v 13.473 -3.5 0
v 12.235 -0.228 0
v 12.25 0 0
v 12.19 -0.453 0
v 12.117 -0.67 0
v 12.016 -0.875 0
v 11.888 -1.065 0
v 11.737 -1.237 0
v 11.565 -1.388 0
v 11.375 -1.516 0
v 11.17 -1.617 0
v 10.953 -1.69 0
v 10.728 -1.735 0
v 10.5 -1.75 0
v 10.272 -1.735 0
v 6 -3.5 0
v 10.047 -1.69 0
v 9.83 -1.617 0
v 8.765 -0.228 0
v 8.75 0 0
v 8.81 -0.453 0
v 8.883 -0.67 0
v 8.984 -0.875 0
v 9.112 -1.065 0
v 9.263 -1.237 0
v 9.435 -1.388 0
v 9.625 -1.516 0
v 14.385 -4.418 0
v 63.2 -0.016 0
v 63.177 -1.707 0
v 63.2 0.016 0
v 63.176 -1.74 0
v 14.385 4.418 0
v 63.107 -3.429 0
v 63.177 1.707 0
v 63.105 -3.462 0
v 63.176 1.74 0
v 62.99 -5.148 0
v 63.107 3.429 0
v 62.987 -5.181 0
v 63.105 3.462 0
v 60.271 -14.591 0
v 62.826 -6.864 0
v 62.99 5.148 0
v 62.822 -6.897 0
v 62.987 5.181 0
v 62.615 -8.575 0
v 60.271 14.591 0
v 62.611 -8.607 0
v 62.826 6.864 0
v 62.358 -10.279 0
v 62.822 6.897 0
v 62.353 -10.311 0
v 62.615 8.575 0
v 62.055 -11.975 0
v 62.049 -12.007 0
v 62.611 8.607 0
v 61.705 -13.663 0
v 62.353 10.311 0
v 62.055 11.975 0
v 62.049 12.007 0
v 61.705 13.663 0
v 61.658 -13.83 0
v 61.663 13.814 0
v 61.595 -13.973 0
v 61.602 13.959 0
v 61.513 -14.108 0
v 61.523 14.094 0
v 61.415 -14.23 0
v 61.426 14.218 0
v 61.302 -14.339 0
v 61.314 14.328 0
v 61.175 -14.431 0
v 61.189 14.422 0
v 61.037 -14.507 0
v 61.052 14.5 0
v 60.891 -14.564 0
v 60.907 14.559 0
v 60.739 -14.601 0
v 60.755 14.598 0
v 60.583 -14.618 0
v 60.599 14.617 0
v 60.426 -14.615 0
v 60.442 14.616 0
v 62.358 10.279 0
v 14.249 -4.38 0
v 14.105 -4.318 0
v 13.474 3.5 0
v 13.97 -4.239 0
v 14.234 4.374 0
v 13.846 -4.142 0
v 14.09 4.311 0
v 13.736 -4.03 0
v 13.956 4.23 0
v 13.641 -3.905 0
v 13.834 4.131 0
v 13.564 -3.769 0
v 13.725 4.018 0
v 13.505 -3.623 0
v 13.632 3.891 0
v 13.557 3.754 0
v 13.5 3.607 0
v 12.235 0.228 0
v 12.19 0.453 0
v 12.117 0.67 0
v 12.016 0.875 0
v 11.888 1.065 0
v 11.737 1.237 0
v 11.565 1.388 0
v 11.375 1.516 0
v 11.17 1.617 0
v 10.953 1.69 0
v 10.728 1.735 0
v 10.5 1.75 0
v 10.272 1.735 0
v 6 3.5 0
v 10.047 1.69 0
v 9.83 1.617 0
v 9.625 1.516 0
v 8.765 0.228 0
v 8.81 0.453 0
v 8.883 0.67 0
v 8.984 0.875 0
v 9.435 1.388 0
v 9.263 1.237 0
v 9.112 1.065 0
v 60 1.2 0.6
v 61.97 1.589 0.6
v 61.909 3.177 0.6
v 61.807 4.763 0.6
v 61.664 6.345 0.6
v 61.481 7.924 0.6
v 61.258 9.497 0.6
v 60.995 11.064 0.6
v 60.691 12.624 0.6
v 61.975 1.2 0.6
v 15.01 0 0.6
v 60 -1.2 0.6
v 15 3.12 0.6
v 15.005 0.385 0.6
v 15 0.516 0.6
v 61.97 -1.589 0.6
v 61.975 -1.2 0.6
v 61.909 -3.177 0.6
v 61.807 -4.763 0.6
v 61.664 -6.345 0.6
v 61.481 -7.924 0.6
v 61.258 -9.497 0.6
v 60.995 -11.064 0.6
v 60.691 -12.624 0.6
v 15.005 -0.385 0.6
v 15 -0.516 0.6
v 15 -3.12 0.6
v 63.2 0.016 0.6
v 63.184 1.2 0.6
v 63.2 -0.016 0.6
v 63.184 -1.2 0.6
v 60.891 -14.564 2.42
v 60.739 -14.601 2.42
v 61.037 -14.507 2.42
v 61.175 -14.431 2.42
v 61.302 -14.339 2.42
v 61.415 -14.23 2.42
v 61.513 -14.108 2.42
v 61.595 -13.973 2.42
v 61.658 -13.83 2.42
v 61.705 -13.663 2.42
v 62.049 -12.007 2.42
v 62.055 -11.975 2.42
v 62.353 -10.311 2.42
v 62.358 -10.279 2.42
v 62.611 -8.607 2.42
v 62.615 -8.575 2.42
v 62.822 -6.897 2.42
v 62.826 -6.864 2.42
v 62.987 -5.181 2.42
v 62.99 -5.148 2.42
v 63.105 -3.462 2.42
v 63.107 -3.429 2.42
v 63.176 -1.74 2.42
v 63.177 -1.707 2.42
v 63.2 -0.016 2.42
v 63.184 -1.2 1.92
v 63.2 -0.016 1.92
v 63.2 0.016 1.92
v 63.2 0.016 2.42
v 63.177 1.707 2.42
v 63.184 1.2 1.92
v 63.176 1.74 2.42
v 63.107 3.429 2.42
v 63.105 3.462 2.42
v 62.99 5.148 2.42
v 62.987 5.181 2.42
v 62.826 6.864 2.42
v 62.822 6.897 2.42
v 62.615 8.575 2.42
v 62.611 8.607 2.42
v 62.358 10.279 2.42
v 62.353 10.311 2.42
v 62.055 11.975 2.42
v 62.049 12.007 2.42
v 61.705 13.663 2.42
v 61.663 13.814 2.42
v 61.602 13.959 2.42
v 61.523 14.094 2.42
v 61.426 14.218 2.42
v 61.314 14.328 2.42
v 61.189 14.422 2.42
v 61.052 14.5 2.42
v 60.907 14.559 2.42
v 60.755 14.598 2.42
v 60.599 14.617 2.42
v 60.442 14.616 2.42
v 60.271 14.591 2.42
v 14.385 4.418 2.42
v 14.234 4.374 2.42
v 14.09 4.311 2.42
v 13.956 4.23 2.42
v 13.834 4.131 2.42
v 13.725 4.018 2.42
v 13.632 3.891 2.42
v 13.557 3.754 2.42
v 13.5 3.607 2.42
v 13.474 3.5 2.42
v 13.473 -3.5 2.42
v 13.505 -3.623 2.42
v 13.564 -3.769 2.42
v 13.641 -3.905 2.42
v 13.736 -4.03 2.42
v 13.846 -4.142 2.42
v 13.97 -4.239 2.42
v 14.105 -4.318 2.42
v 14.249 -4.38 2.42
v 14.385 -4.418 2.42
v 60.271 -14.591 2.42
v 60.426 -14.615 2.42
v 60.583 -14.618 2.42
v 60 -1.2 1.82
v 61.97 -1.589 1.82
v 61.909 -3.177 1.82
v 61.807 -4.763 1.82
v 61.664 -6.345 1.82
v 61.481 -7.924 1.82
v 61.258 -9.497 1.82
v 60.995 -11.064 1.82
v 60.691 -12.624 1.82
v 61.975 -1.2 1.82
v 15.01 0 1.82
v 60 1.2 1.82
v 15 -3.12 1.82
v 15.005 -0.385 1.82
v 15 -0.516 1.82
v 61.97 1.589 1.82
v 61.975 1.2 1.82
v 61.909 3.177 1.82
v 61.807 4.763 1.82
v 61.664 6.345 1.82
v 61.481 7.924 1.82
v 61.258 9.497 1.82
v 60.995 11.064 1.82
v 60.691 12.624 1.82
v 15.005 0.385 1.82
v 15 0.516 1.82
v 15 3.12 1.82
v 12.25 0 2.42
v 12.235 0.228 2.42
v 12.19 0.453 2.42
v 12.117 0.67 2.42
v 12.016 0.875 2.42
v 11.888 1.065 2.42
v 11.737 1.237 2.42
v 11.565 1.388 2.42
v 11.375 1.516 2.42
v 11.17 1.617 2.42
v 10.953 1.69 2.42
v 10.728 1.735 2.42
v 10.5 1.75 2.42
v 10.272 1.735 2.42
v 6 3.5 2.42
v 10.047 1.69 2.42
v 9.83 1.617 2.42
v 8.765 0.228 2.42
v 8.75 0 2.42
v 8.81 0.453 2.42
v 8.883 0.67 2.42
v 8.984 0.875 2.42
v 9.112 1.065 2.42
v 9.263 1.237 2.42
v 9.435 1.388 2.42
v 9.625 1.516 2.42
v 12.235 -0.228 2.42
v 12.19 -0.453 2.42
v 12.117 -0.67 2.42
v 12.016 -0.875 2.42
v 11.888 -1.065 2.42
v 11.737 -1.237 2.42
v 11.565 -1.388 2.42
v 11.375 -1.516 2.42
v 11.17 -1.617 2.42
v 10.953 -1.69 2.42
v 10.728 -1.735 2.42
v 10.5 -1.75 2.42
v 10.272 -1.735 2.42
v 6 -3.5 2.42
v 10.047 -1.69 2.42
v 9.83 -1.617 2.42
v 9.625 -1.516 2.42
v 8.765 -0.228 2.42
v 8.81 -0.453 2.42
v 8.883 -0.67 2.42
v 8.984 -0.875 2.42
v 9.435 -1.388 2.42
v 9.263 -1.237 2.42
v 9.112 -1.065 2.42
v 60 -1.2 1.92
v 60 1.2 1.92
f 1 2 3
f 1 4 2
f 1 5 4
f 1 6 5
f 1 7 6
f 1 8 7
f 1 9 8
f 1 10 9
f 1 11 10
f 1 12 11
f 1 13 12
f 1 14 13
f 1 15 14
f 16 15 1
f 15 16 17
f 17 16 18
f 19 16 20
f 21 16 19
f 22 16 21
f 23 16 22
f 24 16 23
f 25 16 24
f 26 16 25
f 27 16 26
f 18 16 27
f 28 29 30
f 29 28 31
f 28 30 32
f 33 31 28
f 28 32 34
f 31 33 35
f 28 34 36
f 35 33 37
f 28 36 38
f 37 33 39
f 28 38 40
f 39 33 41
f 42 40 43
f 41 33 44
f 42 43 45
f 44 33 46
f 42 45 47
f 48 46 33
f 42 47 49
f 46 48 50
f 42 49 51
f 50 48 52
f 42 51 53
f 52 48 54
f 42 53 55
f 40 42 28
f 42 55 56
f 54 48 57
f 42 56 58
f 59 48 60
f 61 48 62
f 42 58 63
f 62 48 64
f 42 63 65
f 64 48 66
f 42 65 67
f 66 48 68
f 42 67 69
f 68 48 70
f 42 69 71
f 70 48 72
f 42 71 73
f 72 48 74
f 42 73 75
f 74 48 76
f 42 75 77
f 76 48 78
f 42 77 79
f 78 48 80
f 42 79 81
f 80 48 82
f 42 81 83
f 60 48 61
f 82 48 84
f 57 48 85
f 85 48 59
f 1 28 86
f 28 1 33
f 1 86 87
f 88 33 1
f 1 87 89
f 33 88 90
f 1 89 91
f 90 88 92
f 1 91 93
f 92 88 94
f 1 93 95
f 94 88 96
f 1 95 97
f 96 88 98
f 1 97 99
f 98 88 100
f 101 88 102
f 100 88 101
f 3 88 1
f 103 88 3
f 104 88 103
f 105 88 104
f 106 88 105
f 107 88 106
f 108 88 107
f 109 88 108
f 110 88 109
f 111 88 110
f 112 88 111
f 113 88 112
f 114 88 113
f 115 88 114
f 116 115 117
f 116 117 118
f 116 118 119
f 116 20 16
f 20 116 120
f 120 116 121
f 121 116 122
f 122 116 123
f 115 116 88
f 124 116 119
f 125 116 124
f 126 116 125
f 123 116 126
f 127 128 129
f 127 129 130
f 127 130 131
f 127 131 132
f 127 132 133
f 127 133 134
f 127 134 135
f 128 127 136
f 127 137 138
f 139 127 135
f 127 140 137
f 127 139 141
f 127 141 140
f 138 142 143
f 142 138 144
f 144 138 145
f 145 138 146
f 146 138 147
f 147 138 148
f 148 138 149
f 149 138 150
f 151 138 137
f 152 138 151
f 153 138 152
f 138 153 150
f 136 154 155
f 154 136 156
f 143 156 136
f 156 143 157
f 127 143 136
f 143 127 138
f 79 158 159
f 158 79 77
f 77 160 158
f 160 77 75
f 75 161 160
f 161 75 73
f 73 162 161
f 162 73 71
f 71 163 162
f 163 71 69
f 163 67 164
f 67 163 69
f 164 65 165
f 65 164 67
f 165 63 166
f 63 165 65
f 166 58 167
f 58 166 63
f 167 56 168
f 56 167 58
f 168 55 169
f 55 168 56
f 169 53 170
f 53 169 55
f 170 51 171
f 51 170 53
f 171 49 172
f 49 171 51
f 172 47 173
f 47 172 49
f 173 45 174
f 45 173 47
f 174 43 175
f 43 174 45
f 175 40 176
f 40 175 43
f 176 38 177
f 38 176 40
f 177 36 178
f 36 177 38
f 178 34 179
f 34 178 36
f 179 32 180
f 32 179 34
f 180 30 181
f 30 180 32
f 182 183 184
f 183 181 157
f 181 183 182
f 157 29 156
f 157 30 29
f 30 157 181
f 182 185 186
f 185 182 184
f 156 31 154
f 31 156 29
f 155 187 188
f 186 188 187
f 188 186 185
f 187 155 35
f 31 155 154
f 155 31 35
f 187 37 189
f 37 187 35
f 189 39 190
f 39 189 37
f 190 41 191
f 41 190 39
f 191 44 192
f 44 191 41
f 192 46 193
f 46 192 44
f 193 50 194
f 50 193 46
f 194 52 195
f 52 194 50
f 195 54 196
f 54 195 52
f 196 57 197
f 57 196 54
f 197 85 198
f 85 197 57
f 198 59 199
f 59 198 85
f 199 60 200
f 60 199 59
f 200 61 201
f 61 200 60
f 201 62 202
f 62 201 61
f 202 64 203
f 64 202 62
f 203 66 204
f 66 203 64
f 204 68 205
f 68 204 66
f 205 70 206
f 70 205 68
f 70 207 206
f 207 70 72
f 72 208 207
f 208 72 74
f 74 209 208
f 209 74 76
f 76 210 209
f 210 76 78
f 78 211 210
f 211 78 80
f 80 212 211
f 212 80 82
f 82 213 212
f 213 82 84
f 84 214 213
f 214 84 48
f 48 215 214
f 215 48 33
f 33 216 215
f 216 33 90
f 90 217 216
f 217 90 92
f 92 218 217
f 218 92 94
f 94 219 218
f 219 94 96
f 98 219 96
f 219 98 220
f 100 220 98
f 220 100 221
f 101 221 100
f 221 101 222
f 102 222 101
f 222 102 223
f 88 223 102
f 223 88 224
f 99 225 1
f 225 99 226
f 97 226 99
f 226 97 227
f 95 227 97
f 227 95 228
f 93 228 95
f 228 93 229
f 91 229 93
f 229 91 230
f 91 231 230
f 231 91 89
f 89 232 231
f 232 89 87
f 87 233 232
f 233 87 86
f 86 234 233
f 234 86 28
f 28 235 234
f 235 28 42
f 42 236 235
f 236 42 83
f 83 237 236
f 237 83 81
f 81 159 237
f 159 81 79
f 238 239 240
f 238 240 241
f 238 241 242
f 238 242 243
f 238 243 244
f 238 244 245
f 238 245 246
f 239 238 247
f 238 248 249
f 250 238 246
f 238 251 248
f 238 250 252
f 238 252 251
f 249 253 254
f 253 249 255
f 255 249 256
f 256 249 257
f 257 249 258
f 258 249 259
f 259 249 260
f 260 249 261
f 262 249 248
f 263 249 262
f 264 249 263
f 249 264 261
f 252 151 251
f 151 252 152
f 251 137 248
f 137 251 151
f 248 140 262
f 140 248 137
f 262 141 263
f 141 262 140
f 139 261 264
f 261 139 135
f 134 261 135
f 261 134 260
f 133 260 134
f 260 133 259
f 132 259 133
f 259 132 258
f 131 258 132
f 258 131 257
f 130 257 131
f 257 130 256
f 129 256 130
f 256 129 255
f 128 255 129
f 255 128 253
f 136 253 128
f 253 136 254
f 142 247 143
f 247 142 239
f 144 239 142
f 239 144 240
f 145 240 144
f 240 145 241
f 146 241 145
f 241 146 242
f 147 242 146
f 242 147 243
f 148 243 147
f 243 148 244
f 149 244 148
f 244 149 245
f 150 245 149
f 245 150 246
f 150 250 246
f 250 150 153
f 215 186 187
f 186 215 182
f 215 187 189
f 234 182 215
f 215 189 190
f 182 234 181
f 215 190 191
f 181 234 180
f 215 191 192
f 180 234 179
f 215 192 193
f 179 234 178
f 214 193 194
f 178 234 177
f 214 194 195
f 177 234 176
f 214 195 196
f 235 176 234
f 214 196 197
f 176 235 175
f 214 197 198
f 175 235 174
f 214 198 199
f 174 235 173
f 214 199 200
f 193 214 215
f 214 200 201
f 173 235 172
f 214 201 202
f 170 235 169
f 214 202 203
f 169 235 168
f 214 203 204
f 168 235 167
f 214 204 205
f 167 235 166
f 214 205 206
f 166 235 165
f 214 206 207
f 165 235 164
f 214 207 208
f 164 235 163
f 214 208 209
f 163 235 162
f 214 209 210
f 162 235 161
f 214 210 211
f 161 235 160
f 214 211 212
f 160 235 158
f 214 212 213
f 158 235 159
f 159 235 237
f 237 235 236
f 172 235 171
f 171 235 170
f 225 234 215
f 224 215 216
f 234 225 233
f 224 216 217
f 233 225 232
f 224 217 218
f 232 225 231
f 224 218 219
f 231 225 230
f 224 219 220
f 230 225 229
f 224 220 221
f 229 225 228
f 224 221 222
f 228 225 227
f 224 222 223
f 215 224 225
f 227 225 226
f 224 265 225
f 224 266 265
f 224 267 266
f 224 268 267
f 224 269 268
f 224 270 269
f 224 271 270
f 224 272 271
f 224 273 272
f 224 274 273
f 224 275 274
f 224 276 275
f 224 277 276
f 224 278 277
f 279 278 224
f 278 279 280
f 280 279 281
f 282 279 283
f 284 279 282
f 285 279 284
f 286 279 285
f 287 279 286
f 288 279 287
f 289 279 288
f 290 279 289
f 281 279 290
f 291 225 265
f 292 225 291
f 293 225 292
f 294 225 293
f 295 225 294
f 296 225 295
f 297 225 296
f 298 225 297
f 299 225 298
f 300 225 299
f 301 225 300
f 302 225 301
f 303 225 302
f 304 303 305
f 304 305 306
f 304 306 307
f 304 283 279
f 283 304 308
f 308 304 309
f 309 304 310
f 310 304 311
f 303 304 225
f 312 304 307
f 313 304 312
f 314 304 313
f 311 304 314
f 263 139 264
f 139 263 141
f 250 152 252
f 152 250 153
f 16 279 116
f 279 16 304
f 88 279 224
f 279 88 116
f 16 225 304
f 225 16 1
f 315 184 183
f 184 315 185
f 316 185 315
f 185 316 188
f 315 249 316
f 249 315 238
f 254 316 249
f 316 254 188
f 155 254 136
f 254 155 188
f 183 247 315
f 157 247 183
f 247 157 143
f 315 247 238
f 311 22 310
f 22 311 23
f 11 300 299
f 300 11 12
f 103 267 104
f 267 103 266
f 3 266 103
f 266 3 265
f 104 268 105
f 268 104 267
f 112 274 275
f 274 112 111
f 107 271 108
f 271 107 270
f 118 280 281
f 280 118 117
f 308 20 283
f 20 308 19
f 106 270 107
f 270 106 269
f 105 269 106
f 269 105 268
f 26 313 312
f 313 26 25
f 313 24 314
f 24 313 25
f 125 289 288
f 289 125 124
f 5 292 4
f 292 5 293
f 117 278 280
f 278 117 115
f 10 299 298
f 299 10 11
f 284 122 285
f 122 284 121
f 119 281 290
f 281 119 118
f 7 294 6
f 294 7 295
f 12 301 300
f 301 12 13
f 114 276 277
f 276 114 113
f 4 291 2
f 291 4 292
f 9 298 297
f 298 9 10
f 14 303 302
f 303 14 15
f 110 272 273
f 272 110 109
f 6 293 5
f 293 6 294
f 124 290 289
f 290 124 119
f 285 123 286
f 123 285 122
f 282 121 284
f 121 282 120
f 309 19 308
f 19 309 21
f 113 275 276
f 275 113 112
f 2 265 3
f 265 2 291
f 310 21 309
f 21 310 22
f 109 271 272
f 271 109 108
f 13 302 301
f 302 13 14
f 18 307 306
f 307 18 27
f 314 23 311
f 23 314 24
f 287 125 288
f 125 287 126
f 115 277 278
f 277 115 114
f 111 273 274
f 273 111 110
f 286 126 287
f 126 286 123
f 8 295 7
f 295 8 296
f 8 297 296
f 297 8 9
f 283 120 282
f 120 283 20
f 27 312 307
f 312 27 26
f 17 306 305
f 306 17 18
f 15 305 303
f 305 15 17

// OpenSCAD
// file: parameters.scad
// =============================================================================
// Gen-AV Vernier flux-claw hyper - WOUND-AWARE (HARD GATE)
// Dual-rotor vernier: Rotor B +22.5 deg vs 12-slot stator; O5 flux claws
// =============================================================================

wire_awg            = 26;
wire_od             = 0.45;
turns               = 205;      // +5 vs Gen-AS 200
fill                = 0.70;
layers_per_face     = 2;
wind_build_axial    = layers_per_face * wire_od * fill;   // 0.63 mm
wind_build_radial   = 3 * wire_od * fill;                 // 0.945 mm

coil_id_r           = 15.0;
coil_od_r           = 62.0;
span_deg            = 25.0;
former_web          = 1.22;     // thinner vs AS 1.25
flange_t            = 0.60;
wall                = 1.2;
slot_w              = 2.4;
mount_hole          = 3.5;
tab_len             = 7.0;

former_bare_h       = former_web + 2 * flange_t;            // 2.42 mm
coil_envelope_h     = former_bare_h + 2 * wind_build_axial; // 3.68 mm

run_clear           = 0.50;
gap_spacer_h        = run_clear + wind_build_axial;         // 1.13 mm
m2m                 = coil_envelope_h + 2 * run_clear;      // 4.68 mm

coil_stations       = 12;
bay_r_in            = coil_id_r - 2.0 - wind_build_radial;
bay_r_out           = coil_od_r + 2.0 + wind_build_radial;
bay_span            = span_deg + 4.0;
bay_offset          = 2.0;
stator_thick        = former_bare_h;
stator_od           = 160.0;
shaft_clear_stator  = 34.0;
coil_mount_r        = 25.5;

large_pocket_d      = 20.3;
small_pocket_d      = 5.3;
pocket_h            = 5.2;
large_n             = 8;
R_large             = 38.5;     // closer to copper centroid vs AS R=39.0
R_small_inner       = 24.5;
R_small_mid         = 38.5;
R_small_outer       = 54.5;
carrier_od          = 156.0;
carrier_thick       = 7.5;
hub_h               = 10.0;
hub_od              = 30.0;
rotor_b_offset_deg  = 22.5;     // vernier offset vs 12-slot stator

shaft_bore          = 8.35;
bearing_d           = 21.85;
bearing_h           = 7.2;
m3_clear            = 3.5;
bolt_r_inner        = 36.0;
bolt_n_inner        = 6;
flange_bolt_r       = 72.0;
flange_bolt_n       = 6;
brace_r             = 68.0;
brace_d             = 4.3;
brace_n             = 4;

spacer_pad_od       = 14.0;
spacer_pad_id       = m3_clear;
endbell_od          = 160.0;
endbell_thick       = 8.0;
endbell_shaft_clear = 10.0;

$fn = 64;
// main file
// Gen-AV pancake former — wind BEFORE assembly
include <parameters.scad>;
$fn = 48;

module sector_2d(r_in, r_out, ang) {
    polygon([
        for (a = [-ang/2 : ang/16 : ang/2]) [r_in*cos(a), r_in*sin(a)],
        for (a = [ang/2 : -ang/16 : -ang/2]) [r_out*cos(a), r_out*sin(a)]
    ]);
}
module flange() {
    linear_extrude(flange_t) offset(r=wall) sector_2d(coil_id_r, coil_od_r, span_deg);
}
difference() {
    union() {
        flange();
        translate([0, 0, flange_t])
            linear_extrude(former_web)
                difference() {
                    offset(r=wall) sector_2d(coil_id_r, coil_od_r, span_deg);
                    sector_2d(coil_id_r + 0.01, coil_od_r - 0.01, span_deg - 1.5);
                }
        translate([0, 0, flange_t + former_web]) flange();
        translate([coil_id_r - tab_len - 2, -3.5, 0])
            cube([tab_len + 2, 7, former_bare_h]);
    }
    translate([coil_od_r - 2, -slot_w/2, flange_t])
        cube([wall + 4, slot_w, former_web + 0.1]);
    translate([coil_id_r - tab_len/2 - 1, 0, -0.1])
        cylinder(d=mount_hole, h=former_bare_h + 1);
}
